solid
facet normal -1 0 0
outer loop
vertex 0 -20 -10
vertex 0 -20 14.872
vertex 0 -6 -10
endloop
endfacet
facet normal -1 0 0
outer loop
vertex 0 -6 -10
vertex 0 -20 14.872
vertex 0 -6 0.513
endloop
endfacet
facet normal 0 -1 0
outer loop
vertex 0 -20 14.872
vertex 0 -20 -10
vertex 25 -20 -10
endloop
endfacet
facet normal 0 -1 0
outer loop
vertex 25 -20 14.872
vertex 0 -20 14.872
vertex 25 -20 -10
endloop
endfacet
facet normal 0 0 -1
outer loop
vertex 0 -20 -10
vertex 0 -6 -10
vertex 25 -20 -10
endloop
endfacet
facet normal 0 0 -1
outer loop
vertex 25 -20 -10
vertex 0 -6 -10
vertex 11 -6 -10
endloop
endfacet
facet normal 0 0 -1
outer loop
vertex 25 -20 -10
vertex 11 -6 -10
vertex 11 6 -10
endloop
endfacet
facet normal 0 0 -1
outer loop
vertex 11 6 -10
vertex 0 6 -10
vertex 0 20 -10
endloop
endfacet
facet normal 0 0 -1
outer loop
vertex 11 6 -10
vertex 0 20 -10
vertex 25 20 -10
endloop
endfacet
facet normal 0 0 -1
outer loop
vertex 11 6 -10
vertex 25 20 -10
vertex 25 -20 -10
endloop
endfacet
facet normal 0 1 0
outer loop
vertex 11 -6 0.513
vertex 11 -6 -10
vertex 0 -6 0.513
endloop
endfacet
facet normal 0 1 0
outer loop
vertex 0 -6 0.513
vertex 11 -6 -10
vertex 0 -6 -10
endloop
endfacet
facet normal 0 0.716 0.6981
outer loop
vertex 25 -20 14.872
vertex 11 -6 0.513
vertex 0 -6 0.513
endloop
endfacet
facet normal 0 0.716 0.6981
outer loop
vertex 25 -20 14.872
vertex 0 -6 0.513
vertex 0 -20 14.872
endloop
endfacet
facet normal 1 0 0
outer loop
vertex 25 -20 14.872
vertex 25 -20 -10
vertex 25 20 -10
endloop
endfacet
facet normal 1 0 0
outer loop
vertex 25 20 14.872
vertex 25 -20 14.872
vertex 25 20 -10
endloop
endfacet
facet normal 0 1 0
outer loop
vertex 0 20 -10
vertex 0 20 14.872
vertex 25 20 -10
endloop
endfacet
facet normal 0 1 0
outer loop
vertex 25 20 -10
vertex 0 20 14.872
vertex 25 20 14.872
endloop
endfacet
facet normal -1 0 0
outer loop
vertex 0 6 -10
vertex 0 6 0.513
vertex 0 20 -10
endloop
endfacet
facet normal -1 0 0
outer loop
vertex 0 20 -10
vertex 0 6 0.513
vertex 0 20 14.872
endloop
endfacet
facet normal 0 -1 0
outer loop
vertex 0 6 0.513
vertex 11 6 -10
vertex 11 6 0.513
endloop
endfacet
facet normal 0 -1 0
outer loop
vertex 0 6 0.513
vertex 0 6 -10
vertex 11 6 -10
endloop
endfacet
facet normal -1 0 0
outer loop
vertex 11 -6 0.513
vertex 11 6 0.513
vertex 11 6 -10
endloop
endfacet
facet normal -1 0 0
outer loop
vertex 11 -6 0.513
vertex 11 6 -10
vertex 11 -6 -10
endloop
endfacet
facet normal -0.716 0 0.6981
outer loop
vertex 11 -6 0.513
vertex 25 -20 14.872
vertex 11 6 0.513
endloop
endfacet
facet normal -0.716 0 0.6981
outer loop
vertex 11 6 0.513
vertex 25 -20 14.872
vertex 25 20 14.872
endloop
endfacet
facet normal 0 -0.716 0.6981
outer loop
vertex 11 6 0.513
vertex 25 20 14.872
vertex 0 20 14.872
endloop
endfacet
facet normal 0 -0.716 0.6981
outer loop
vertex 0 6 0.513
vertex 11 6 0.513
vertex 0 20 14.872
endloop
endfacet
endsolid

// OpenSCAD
difference() {
  translate([0, -20, -10]) cube(size=[25, 40, 25]);
  translate([5, 0, 0]) rotate([0, 0, 45]) cylinder(r1=11/sqrt(2), r2=50/sqrt(2), h=20, $fn=4);
  translate([-1, -6, -15]) cube([12, 12, 25]);
}
